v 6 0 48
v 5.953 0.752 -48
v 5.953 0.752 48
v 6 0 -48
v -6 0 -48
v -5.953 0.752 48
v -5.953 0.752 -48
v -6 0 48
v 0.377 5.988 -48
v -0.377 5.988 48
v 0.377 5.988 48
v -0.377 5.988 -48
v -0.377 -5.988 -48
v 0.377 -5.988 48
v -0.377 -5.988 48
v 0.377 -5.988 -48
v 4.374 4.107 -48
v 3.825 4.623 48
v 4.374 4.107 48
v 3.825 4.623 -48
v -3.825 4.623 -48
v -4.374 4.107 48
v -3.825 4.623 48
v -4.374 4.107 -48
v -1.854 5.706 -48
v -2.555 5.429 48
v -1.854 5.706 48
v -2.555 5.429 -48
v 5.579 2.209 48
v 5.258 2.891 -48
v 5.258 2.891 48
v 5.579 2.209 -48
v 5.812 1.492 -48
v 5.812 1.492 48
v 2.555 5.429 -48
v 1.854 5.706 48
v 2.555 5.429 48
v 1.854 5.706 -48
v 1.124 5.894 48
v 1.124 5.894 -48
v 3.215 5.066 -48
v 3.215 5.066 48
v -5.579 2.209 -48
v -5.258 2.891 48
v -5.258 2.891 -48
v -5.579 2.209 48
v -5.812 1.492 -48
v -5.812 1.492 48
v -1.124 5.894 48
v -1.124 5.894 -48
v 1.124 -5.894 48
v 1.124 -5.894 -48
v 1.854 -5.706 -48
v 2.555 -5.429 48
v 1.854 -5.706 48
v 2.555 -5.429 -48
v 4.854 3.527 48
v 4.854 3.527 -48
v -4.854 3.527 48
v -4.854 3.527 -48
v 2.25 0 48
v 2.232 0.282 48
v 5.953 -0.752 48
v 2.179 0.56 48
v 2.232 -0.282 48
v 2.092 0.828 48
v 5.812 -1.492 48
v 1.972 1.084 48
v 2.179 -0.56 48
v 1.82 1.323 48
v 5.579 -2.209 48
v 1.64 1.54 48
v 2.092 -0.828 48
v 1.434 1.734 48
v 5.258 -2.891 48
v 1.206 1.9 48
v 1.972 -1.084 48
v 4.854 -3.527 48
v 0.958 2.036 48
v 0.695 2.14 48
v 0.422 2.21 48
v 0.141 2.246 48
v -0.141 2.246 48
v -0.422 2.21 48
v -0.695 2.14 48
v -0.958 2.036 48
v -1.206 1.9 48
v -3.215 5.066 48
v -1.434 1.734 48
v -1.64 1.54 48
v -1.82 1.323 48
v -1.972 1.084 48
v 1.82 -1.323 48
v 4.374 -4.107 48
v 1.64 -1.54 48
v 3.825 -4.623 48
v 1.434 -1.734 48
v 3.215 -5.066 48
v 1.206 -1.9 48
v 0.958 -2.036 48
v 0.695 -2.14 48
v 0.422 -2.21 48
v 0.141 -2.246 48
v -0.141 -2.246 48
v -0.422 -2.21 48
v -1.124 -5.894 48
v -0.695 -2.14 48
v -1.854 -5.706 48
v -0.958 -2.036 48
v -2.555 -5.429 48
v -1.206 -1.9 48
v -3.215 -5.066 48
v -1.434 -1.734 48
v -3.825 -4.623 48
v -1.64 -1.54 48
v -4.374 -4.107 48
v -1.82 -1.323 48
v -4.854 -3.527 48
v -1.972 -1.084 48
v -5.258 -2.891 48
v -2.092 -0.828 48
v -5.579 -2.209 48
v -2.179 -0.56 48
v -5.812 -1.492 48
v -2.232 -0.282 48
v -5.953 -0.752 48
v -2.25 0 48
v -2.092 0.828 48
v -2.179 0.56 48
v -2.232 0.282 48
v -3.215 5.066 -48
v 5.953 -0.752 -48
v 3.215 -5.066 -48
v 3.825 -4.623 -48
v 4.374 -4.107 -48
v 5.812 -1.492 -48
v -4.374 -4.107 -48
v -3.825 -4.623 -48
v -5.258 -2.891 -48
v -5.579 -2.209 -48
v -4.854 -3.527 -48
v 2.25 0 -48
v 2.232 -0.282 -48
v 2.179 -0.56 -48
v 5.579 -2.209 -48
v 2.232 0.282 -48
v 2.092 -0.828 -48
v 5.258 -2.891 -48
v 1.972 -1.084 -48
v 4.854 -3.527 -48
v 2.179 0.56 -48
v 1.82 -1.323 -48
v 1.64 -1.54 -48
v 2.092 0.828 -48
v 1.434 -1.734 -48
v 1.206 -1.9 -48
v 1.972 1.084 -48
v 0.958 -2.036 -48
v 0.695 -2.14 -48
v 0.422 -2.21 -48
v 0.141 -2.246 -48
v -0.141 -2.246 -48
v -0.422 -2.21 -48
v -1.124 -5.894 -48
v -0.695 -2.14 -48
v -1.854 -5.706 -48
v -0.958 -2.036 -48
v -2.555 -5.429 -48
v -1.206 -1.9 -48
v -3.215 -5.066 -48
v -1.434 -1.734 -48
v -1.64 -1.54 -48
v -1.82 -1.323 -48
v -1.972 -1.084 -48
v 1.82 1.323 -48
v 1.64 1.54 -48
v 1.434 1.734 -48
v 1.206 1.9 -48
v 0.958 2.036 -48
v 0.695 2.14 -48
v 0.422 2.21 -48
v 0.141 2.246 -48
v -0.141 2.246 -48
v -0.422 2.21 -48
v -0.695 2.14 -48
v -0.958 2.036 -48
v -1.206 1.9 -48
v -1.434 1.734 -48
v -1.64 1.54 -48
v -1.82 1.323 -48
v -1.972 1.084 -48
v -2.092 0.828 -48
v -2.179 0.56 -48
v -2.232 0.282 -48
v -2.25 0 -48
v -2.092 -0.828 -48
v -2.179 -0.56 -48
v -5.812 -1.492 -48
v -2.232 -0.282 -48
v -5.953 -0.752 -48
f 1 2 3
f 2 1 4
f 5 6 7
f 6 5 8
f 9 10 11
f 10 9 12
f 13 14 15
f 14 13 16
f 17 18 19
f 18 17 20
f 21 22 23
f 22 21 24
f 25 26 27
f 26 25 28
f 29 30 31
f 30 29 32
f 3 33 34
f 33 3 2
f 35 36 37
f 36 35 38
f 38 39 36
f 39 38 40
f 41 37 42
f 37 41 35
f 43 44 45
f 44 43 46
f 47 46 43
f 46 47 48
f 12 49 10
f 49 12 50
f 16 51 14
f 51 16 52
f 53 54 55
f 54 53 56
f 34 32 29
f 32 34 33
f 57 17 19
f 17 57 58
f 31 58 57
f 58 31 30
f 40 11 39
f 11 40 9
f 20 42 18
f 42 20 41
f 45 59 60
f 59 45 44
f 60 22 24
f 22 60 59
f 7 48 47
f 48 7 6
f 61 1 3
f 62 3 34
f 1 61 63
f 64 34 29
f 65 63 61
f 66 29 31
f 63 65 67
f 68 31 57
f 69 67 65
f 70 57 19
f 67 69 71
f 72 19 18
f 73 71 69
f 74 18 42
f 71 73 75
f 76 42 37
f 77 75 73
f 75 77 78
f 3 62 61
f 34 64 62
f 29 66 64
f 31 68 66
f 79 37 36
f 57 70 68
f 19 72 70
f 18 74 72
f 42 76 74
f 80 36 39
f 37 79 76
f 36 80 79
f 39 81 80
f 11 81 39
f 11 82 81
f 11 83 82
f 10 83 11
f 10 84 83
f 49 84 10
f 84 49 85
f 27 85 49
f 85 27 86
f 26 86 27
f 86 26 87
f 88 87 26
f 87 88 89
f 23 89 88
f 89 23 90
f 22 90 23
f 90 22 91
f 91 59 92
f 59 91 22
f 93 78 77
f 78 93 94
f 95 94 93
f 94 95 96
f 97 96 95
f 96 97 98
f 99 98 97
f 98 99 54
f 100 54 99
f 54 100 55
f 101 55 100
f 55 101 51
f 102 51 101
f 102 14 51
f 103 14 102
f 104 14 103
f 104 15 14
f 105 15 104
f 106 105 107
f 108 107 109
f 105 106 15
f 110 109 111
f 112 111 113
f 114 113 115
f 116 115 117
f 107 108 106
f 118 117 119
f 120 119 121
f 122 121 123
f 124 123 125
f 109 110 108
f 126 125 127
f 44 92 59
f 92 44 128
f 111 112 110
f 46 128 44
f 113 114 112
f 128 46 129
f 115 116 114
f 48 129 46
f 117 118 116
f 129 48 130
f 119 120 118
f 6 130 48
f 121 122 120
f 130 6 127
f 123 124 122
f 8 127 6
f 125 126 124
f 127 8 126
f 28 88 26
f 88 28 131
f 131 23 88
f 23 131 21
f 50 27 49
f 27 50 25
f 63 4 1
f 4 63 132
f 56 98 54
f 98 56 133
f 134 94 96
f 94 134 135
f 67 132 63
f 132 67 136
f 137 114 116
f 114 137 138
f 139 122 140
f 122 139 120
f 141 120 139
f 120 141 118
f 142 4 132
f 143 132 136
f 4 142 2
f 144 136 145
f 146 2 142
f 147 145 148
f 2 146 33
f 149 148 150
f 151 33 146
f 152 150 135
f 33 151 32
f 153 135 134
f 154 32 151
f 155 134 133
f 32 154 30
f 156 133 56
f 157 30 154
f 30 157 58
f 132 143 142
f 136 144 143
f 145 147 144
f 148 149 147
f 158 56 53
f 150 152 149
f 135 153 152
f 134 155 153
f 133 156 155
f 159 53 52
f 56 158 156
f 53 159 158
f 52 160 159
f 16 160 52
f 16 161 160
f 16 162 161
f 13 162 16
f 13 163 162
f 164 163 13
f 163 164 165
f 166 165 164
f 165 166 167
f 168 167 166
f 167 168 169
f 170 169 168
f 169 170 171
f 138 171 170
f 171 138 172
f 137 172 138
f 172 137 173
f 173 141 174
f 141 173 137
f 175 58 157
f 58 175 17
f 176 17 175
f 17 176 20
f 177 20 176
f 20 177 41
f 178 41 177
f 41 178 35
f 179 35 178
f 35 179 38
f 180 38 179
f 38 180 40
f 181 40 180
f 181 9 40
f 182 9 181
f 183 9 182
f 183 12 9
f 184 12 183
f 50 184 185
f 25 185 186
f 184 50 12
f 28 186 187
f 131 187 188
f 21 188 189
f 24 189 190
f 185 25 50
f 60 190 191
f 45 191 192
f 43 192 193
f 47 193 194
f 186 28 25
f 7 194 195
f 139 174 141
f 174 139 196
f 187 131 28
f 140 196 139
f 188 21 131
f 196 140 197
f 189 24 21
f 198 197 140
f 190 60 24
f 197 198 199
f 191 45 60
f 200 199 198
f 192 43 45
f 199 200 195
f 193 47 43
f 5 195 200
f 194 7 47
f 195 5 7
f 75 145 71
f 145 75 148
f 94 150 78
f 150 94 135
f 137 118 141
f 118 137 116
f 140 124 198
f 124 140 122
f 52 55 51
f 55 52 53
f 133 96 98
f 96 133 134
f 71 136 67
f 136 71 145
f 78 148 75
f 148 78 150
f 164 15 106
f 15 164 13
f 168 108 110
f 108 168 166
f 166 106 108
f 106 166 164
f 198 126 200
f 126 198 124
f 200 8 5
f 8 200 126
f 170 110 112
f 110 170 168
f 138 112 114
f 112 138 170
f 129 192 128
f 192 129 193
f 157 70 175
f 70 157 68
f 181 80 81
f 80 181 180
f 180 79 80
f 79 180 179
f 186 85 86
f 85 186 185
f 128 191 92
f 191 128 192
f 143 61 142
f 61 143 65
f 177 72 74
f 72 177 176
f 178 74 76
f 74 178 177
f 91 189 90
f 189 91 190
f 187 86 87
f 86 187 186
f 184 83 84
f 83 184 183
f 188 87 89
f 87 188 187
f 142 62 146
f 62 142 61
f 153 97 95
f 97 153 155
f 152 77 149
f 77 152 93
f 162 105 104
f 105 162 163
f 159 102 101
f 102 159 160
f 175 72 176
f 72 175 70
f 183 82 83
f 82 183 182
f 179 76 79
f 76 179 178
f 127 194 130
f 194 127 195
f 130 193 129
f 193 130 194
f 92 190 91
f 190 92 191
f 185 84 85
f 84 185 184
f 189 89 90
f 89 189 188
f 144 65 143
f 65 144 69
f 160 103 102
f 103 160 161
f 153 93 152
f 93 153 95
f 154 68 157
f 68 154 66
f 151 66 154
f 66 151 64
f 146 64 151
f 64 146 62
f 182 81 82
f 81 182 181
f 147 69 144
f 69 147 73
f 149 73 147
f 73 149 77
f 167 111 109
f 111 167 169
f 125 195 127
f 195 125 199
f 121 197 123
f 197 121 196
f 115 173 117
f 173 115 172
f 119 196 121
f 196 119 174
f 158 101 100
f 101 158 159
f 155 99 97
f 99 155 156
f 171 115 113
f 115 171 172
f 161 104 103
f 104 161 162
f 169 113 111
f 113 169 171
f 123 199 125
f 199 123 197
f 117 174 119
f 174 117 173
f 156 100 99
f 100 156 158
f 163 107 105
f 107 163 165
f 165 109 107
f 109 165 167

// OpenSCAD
$fn = 50;


difference() {
	union() {
		translate(v = [0, 0, -48.0000000000]) {
			cylinder(h = 96, r = 6.0000000000);
		}
	}
	union() {
		translate(v = [0, 0, -100.0000000000]) {
			cylinder(h = 200, r = 2.2500000000);
		}
	}
}
